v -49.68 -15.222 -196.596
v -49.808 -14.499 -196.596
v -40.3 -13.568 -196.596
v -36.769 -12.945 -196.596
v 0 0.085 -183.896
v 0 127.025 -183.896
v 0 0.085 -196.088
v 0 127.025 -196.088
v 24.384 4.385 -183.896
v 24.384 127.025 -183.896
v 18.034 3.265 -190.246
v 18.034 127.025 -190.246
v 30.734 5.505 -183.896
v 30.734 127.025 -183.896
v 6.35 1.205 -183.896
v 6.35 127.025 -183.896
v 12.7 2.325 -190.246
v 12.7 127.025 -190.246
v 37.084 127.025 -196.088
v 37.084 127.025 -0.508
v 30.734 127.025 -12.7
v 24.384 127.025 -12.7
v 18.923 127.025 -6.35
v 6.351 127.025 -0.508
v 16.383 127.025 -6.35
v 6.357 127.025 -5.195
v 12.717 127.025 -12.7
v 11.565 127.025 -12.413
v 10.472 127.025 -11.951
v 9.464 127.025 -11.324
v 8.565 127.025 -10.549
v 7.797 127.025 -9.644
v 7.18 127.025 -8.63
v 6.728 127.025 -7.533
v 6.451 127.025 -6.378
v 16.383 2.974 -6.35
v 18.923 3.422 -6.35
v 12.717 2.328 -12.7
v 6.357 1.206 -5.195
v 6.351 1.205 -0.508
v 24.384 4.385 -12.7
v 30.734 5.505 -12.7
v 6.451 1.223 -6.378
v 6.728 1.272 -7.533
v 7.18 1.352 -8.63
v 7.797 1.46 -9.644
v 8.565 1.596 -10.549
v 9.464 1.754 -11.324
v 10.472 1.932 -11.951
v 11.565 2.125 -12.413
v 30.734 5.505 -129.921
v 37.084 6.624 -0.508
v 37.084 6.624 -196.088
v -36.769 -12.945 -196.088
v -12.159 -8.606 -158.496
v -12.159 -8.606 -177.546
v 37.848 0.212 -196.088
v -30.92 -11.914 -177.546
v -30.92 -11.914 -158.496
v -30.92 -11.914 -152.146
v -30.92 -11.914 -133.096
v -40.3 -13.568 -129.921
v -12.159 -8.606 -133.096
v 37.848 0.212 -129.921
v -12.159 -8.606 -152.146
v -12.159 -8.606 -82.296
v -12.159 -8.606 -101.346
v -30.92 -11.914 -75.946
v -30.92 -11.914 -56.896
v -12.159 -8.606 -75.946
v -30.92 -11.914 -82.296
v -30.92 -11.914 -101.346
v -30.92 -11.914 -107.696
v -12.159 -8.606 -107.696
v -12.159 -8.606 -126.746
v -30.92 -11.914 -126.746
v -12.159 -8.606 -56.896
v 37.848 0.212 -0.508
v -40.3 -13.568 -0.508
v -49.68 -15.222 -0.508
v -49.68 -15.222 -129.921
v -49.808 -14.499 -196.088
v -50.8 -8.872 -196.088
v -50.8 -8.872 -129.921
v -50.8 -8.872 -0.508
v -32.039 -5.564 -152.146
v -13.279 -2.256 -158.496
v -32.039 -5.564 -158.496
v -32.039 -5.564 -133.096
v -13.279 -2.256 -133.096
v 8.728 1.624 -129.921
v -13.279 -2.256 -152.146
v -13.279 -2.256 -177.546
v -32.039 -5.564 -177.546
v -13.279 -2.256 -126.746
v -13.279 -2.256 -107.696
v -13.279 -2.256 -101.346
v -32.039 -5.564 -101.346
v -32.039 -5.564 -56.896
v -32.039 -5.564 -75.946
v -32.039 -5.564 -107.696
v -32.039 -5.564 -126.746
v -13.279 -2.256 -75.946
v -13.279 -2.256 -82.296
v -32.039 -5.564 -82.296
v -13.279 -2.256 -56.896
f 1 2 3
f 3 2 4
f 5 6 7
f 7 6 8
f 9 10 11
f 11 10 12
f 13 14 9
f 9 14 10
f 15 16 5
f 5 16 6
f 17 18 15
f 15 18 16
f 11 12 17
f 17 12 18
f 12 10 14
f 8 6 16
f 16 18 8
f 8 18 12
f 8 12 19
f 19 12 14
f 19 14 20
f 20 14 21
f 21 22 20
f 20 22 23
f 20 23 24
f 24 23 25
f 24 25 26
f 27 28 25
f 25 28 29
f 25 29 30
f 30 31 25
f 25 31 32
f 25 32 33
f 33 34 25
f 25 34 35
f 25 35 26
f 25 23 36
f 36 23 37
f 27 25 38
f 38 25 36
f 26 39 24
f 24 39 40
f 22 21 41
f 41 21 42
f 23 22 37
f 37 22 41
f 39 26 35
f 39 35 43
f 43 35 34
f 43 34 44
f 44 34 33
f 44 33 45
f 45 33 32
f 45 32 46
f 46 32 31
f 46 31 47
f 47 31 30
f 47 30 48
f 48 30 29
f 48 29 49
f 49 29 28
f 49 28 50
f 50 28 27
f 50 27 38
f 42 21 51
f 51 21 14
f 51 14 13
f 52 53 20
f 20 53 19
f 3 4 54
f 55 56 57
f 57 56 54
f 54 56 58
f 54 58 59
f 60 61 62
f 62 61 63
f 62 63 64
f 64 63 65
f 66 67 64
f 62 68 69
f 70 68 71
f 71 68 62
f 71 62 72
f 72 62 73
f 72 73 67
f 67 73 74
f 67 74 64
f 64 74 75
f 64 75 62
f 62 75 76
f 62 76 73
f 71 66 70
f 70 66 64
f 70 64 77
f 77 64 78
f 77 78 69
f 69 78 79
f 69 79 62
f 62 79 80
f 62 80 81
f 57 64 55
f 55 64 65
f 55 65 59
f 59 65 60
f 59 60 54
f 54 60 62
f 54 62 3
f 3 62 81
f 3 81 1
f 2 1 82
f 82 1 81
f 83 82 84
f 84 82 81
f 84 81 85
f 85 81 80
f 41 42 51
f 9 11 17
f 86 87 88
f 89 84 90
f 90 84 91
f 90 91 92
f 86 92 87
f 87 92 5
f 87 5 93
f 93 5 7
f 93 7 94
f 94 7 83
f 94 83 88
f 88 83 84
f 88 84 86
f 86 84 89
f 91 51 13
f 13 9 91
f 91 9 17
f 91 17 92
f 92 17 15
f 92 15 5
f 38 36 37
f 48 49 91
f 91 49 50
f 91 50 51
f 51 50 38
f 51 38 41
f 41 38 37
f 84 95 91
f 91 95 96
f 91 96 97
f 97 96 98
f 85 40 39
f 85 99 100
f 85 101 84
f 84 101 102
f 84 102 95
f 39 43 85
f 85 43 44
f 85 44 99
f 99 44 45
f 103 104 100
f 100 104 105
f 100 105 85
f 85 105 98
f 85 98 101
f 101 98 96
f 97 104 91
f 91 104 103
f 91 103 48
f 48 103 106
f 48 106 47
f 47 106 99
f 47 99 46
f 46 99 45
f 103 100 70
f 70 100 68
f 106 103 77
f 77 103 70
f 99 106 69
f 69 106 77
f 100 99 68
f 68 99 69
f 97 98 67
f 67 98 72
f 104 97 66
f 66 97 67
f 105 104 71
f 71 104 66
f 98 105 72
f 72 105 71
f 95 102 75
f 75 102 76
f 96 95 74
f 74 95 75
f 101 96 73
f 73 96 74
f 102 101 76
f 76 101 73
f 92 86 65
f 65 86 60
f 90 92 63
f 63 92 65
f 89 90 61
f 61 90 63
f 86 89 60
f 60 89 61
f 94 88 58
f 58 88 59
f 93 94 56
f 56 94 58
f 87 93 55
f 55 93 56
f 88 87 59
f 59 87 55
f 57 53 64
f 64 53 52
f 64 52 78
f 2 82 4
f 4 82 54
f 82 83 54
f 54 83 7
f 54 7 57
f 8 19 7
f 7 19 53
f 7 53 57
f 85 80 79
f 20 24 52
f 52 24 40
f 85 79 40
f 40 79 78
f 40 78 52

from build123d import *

# Parameters (mm, degrees)
SKETCH1_W                       = 30.734
SKETCH1_H                       = 196.596
BOSS_EXTRUDE1_DEPTH             = 0.0254
SKETCH22_W                      = 30.734
SKETCH22_H                      = 196.596
BOSS_EXTRUDE10_DEPTH            = 5.08
BOSS_EXTRUDE11_DEPTH            = 127
FILLET1_R                       = 7.62
BOSS_EXTRUDE3_REACH             = 227.812
SKETCH6_W                       = 6.35
SKETCH6_H                       = 132.08
BOSS_EXTRUDE3_DIRECTION_2_REACH = 227.812
BOSS_EXTRUDE7_REACH             = 238.982
SKETCH19_W                      = 19.05
SKETCH19_H                      = 19.05
CUT_EXTRUDE2_DEPTH              = 240.465115736
SKETCH20_W                      = 135.918968774
SKETCH20_H                      = 500.058977118
CUT_EXTRUDE3_DEPTH              = 153.162
CUT_EXTRUDE5_DEPTH              = 240.512169756
CUT_EXTRUDE6_DEPTH              = 248.87835803
CUT_EXTRUDE6_DEPTH_BACK         = 248.87835803
SKETCH29_W                      = 0.508
SKETCH29_H                      = 309.433656838
SKETCH29_H_2                    = 1270


with BuildPart() as part:
    # Sketch1 → Boss-Extrude1 (new body)
    with BuildSketch(Plane(origin=(0, 0, 0), x_dir=(1, 0, 0), z_dir=(0, 1, 0))):
        with Locations((15.367, 98.298)):
            Rectangle(SKETCH1_W, SKETCH1_H)
    extrude(amount=BOSS_EXTRUDE1_DEPTH)

    # Sketch22 → Boss-Extrude10 (add)
    with BuildSketch(Plane.XZ):
        with Locations((15.367, -98.298)):
            Rectangle(SKETCH22_W, SKETCH22_H)
    extrude(amount=BOSS_EXTRUDE10_DEPTH)

    # Sketch23 → Boss-Extrude11 (add)
    with BuildSketch(Plane(origin=(0, 0.0254, 0), x_dir=(1, 0, 0), z_dir=(0, 1, 0))):
        Polygon((0, 183.896), (6.35, 183.896), (12.7, 190.246), (18.034, 190.246), (24.384, 183.896), (30.734, 183.896), (30.734, 196.596), (0, 196.596), align=None)
        Polygon((30.734, 0), (6.350000064, 0), (6.366832231, 12.699988846), (12.716832231, 12.699988846), (16.383, 6.35), (18.923, 6.35), (24.384, 12.7), (30.734, 12.7), align=None)
    extrude(amount=BOSS_EXTRUDE11_DEPTH)

    # Fillet1
    # the kernel refuses this fillet: 7.62 mm, written as the material it takes off along each edge
    with BuildSketch(Plane(origin=(6.366832231, 0.0254, -12.699988846), x_dir=(1, 0, 0), z_dir=(0, 1, 0))) as fillet1_piece_1:
        with BuildLine():
            CenterArc((7.610046419, -7.515097007), FILLET1_R, 99.518172774, 80.405889243)
            Line((-0.009946888, -7.504997707), (0, 0))
            Line((0, 0), (6.35, 0))
        make_face()
    extrude(amount=145.762510746, mode=Mode.SUBTRACT)

    # Boss-Extrude3: up to this face of the body (flat: up to its plane)
    boss_extrude3_end = Plane(part.part.faces().sort_by_distance((18.388884901, 60.339992847, 0))[0])
    # Sketch6 → Boss-Extrude3 (add, up to the picked face)
    with BuildSketch(Plane.XY.offset(-184.15), mode=Mode.PRIVATE) as boss_extrude3_sk1:
        with Locations((33.909, 60.9854)):
            Rectangle(SKETCH6_W, SKETCH6_H)
    boss_extrude3_tool1 = split(extrude(boss_extrude3_sk1.sketch, amount=BOSS_EXTRUDE3_REACH, mode=Mode.PRIVATE), bisect_by=boss_extrude3_end, keep=Keep.BOTH, mode=Mode.PRIVATE)
    add(boss_extrude3_tool1.solids().sort_by(Axis((33.909, 60.9854, -184.15), (0, 0, 1)))[0])

    # Boss-Extrude3 direction 2: up to this face of the body (flat: up to its plane)
    boss_extrude3_direction_2_end = Plane(part.part.faces().sort_by_distance((15.367, 60.9727, -196.596))[0])
    # Sketch6 → Boss-Extrude3 direction 2 (add, up to the picked face)
    with BuildSketch(Plane.XY.offset(-184.15), mode=Mode.PRIVATE) as boss_extrude3_direction_2_sk1:
        with Locations((33.909, 60.9854)):
            Rectangle(SKETCH6_W, SKETCH6_H)
    boss_extrude3_direction_2_tool1 = split(extrude(boss_extrude3_direction_2_sk1.sketch, amount=-BOSS_EXTRUDE3_DIRECTION_2_REACH, mode=Mode.PRIVATE), bisect_by=boss_extrude3_direction_2_end, keep=Keep.BOTH, mode=Mode.PRIVATE)
    add(boss_extrude3_direction_2_tool1.solids().sort_by(Axis((33.909, 60.9854, -184.15), (0, 0, -1)))[0])

    # Boss-Extrude7: up to this face of the body (flat: up to its plane)
    boss_extrude7_end = Plane(part.part.faces().sort_by_distance((18.541494055, 60.974874311, -196.596))[0])
    # Sketch15 → Boss-Extrude7 (add, up to the picked face)
    with BuildSketch(Plane.XY, mode=Mode.PRIVATE) as boss_extrude7_sk1:
        Polygon((-50.8, -8.87193717), (-49.680323673, -15.22193717), (39.219676327, 0.453531415), (38.1, 6.803531415), align=None)
    boss_extrude7_tool1 = split(extrude(boss_extrude7_sk1.sketch, amount=-BOSS_EXTRUDE7_REACH, mode=Mode.PRIVATE), bisect_by=boss_extrude7_end, keep=Keep.BOTH, mode=Mode.PRIVATE)
    add(boss_extrude7_tool1.solids().sort_by(Axis((-5.790162, -4.209203, 0), (0, 0, -1)))[0])

    # Sketch19 → Cut-Extrude2 (cut, through all)
    with BuildSketch(Plane(origin=(-0.014616821, 0.08289611, 0), x_dir=(0.984807753012208, 0.1736481776669311, 0), z_dir=(-0.1736481776669311, 0.984807753012208, 0))):
        with Locations((-22.993829575, 168.021)):
            Rectangle(SKETCH19_W, SKETCH19_H)
        with Locations((-22.993829575, 142.621)):
            Rectangle(SKETCH19_W, SKETCH19_H)
        with Locations((-22.993829575, 117.221)):
            Rectangle(SKETCH19_W, SKETCH19_H)
        with Locations((-22.993829575, 91.821)):
            Rectangle(SKETCH19_W, SKETCH19_H)
        with Locations((-22.993829575, 66.421)):
            Rectangle(SKETCH19_W, SKETCH19_H)
    extrude(amount=-CUT_EXTRUDE2_DEPTH, mode=Mode.SUBTRACT)

    # Sketch20 → Cut-Extrude3 (cut)
    with BuildSketch(Plane(origin=(1.105059507, -6.26710389, 0), x_dir=(0.9848077530122079, 0.17364817766693127, 0), z_dir=(0.17364817766693127, -0.9848077530122079, 0))):
        with Locations((20.082569743, -64.610703306)):
            Rectangle(SKETCH20_W, SKETCH20_H)
    extrude(amount=CUT_EXTRUDE3_DEPTH, mode=Mode.SUBTRACT)

    # Sketch28 → Cut-Extrude5 (cut, through all)
    with BuildSketch(Plane.XY):
        Polygon((39.219676327, 0.453531415), (38.1, 6.803531415), (37.084, 6.624383203), (37.848330327, 0.211726115), align=None)
    extrude(amount=-CUT_EXTRUDE5_DEPTH, mode=Mode.SUBTRACT)

    # Sketch29 → Cut-Extrude6 (cut, two sides: drawn at the far end of the back side and taken through both)
    with BuildSketch(Plane(origin=(37.343053222, 4.450951877, 0), x_dir=(0, 0, -1), z_dir=(0.992971564369303, 0.11835316790850746, 0)).offset(-CUT_EXTRUDE6_DEPTH_BACK)):
        with Locations((0.254, 29.905643692)):
            Rectangle(SKETCH29_W, SKETCH29_H)
        with Locations((196.342, 626.49740635)):
            Rectangle(SKETCH29_W, SKETCH29_H_2)
    extrude(amount=CUT_EXTRUDE6_DEPTH + CUT_EXTRUDE6_DEPTH_BACK, mode=Mode.SUBTRACT)


solid = part.part
